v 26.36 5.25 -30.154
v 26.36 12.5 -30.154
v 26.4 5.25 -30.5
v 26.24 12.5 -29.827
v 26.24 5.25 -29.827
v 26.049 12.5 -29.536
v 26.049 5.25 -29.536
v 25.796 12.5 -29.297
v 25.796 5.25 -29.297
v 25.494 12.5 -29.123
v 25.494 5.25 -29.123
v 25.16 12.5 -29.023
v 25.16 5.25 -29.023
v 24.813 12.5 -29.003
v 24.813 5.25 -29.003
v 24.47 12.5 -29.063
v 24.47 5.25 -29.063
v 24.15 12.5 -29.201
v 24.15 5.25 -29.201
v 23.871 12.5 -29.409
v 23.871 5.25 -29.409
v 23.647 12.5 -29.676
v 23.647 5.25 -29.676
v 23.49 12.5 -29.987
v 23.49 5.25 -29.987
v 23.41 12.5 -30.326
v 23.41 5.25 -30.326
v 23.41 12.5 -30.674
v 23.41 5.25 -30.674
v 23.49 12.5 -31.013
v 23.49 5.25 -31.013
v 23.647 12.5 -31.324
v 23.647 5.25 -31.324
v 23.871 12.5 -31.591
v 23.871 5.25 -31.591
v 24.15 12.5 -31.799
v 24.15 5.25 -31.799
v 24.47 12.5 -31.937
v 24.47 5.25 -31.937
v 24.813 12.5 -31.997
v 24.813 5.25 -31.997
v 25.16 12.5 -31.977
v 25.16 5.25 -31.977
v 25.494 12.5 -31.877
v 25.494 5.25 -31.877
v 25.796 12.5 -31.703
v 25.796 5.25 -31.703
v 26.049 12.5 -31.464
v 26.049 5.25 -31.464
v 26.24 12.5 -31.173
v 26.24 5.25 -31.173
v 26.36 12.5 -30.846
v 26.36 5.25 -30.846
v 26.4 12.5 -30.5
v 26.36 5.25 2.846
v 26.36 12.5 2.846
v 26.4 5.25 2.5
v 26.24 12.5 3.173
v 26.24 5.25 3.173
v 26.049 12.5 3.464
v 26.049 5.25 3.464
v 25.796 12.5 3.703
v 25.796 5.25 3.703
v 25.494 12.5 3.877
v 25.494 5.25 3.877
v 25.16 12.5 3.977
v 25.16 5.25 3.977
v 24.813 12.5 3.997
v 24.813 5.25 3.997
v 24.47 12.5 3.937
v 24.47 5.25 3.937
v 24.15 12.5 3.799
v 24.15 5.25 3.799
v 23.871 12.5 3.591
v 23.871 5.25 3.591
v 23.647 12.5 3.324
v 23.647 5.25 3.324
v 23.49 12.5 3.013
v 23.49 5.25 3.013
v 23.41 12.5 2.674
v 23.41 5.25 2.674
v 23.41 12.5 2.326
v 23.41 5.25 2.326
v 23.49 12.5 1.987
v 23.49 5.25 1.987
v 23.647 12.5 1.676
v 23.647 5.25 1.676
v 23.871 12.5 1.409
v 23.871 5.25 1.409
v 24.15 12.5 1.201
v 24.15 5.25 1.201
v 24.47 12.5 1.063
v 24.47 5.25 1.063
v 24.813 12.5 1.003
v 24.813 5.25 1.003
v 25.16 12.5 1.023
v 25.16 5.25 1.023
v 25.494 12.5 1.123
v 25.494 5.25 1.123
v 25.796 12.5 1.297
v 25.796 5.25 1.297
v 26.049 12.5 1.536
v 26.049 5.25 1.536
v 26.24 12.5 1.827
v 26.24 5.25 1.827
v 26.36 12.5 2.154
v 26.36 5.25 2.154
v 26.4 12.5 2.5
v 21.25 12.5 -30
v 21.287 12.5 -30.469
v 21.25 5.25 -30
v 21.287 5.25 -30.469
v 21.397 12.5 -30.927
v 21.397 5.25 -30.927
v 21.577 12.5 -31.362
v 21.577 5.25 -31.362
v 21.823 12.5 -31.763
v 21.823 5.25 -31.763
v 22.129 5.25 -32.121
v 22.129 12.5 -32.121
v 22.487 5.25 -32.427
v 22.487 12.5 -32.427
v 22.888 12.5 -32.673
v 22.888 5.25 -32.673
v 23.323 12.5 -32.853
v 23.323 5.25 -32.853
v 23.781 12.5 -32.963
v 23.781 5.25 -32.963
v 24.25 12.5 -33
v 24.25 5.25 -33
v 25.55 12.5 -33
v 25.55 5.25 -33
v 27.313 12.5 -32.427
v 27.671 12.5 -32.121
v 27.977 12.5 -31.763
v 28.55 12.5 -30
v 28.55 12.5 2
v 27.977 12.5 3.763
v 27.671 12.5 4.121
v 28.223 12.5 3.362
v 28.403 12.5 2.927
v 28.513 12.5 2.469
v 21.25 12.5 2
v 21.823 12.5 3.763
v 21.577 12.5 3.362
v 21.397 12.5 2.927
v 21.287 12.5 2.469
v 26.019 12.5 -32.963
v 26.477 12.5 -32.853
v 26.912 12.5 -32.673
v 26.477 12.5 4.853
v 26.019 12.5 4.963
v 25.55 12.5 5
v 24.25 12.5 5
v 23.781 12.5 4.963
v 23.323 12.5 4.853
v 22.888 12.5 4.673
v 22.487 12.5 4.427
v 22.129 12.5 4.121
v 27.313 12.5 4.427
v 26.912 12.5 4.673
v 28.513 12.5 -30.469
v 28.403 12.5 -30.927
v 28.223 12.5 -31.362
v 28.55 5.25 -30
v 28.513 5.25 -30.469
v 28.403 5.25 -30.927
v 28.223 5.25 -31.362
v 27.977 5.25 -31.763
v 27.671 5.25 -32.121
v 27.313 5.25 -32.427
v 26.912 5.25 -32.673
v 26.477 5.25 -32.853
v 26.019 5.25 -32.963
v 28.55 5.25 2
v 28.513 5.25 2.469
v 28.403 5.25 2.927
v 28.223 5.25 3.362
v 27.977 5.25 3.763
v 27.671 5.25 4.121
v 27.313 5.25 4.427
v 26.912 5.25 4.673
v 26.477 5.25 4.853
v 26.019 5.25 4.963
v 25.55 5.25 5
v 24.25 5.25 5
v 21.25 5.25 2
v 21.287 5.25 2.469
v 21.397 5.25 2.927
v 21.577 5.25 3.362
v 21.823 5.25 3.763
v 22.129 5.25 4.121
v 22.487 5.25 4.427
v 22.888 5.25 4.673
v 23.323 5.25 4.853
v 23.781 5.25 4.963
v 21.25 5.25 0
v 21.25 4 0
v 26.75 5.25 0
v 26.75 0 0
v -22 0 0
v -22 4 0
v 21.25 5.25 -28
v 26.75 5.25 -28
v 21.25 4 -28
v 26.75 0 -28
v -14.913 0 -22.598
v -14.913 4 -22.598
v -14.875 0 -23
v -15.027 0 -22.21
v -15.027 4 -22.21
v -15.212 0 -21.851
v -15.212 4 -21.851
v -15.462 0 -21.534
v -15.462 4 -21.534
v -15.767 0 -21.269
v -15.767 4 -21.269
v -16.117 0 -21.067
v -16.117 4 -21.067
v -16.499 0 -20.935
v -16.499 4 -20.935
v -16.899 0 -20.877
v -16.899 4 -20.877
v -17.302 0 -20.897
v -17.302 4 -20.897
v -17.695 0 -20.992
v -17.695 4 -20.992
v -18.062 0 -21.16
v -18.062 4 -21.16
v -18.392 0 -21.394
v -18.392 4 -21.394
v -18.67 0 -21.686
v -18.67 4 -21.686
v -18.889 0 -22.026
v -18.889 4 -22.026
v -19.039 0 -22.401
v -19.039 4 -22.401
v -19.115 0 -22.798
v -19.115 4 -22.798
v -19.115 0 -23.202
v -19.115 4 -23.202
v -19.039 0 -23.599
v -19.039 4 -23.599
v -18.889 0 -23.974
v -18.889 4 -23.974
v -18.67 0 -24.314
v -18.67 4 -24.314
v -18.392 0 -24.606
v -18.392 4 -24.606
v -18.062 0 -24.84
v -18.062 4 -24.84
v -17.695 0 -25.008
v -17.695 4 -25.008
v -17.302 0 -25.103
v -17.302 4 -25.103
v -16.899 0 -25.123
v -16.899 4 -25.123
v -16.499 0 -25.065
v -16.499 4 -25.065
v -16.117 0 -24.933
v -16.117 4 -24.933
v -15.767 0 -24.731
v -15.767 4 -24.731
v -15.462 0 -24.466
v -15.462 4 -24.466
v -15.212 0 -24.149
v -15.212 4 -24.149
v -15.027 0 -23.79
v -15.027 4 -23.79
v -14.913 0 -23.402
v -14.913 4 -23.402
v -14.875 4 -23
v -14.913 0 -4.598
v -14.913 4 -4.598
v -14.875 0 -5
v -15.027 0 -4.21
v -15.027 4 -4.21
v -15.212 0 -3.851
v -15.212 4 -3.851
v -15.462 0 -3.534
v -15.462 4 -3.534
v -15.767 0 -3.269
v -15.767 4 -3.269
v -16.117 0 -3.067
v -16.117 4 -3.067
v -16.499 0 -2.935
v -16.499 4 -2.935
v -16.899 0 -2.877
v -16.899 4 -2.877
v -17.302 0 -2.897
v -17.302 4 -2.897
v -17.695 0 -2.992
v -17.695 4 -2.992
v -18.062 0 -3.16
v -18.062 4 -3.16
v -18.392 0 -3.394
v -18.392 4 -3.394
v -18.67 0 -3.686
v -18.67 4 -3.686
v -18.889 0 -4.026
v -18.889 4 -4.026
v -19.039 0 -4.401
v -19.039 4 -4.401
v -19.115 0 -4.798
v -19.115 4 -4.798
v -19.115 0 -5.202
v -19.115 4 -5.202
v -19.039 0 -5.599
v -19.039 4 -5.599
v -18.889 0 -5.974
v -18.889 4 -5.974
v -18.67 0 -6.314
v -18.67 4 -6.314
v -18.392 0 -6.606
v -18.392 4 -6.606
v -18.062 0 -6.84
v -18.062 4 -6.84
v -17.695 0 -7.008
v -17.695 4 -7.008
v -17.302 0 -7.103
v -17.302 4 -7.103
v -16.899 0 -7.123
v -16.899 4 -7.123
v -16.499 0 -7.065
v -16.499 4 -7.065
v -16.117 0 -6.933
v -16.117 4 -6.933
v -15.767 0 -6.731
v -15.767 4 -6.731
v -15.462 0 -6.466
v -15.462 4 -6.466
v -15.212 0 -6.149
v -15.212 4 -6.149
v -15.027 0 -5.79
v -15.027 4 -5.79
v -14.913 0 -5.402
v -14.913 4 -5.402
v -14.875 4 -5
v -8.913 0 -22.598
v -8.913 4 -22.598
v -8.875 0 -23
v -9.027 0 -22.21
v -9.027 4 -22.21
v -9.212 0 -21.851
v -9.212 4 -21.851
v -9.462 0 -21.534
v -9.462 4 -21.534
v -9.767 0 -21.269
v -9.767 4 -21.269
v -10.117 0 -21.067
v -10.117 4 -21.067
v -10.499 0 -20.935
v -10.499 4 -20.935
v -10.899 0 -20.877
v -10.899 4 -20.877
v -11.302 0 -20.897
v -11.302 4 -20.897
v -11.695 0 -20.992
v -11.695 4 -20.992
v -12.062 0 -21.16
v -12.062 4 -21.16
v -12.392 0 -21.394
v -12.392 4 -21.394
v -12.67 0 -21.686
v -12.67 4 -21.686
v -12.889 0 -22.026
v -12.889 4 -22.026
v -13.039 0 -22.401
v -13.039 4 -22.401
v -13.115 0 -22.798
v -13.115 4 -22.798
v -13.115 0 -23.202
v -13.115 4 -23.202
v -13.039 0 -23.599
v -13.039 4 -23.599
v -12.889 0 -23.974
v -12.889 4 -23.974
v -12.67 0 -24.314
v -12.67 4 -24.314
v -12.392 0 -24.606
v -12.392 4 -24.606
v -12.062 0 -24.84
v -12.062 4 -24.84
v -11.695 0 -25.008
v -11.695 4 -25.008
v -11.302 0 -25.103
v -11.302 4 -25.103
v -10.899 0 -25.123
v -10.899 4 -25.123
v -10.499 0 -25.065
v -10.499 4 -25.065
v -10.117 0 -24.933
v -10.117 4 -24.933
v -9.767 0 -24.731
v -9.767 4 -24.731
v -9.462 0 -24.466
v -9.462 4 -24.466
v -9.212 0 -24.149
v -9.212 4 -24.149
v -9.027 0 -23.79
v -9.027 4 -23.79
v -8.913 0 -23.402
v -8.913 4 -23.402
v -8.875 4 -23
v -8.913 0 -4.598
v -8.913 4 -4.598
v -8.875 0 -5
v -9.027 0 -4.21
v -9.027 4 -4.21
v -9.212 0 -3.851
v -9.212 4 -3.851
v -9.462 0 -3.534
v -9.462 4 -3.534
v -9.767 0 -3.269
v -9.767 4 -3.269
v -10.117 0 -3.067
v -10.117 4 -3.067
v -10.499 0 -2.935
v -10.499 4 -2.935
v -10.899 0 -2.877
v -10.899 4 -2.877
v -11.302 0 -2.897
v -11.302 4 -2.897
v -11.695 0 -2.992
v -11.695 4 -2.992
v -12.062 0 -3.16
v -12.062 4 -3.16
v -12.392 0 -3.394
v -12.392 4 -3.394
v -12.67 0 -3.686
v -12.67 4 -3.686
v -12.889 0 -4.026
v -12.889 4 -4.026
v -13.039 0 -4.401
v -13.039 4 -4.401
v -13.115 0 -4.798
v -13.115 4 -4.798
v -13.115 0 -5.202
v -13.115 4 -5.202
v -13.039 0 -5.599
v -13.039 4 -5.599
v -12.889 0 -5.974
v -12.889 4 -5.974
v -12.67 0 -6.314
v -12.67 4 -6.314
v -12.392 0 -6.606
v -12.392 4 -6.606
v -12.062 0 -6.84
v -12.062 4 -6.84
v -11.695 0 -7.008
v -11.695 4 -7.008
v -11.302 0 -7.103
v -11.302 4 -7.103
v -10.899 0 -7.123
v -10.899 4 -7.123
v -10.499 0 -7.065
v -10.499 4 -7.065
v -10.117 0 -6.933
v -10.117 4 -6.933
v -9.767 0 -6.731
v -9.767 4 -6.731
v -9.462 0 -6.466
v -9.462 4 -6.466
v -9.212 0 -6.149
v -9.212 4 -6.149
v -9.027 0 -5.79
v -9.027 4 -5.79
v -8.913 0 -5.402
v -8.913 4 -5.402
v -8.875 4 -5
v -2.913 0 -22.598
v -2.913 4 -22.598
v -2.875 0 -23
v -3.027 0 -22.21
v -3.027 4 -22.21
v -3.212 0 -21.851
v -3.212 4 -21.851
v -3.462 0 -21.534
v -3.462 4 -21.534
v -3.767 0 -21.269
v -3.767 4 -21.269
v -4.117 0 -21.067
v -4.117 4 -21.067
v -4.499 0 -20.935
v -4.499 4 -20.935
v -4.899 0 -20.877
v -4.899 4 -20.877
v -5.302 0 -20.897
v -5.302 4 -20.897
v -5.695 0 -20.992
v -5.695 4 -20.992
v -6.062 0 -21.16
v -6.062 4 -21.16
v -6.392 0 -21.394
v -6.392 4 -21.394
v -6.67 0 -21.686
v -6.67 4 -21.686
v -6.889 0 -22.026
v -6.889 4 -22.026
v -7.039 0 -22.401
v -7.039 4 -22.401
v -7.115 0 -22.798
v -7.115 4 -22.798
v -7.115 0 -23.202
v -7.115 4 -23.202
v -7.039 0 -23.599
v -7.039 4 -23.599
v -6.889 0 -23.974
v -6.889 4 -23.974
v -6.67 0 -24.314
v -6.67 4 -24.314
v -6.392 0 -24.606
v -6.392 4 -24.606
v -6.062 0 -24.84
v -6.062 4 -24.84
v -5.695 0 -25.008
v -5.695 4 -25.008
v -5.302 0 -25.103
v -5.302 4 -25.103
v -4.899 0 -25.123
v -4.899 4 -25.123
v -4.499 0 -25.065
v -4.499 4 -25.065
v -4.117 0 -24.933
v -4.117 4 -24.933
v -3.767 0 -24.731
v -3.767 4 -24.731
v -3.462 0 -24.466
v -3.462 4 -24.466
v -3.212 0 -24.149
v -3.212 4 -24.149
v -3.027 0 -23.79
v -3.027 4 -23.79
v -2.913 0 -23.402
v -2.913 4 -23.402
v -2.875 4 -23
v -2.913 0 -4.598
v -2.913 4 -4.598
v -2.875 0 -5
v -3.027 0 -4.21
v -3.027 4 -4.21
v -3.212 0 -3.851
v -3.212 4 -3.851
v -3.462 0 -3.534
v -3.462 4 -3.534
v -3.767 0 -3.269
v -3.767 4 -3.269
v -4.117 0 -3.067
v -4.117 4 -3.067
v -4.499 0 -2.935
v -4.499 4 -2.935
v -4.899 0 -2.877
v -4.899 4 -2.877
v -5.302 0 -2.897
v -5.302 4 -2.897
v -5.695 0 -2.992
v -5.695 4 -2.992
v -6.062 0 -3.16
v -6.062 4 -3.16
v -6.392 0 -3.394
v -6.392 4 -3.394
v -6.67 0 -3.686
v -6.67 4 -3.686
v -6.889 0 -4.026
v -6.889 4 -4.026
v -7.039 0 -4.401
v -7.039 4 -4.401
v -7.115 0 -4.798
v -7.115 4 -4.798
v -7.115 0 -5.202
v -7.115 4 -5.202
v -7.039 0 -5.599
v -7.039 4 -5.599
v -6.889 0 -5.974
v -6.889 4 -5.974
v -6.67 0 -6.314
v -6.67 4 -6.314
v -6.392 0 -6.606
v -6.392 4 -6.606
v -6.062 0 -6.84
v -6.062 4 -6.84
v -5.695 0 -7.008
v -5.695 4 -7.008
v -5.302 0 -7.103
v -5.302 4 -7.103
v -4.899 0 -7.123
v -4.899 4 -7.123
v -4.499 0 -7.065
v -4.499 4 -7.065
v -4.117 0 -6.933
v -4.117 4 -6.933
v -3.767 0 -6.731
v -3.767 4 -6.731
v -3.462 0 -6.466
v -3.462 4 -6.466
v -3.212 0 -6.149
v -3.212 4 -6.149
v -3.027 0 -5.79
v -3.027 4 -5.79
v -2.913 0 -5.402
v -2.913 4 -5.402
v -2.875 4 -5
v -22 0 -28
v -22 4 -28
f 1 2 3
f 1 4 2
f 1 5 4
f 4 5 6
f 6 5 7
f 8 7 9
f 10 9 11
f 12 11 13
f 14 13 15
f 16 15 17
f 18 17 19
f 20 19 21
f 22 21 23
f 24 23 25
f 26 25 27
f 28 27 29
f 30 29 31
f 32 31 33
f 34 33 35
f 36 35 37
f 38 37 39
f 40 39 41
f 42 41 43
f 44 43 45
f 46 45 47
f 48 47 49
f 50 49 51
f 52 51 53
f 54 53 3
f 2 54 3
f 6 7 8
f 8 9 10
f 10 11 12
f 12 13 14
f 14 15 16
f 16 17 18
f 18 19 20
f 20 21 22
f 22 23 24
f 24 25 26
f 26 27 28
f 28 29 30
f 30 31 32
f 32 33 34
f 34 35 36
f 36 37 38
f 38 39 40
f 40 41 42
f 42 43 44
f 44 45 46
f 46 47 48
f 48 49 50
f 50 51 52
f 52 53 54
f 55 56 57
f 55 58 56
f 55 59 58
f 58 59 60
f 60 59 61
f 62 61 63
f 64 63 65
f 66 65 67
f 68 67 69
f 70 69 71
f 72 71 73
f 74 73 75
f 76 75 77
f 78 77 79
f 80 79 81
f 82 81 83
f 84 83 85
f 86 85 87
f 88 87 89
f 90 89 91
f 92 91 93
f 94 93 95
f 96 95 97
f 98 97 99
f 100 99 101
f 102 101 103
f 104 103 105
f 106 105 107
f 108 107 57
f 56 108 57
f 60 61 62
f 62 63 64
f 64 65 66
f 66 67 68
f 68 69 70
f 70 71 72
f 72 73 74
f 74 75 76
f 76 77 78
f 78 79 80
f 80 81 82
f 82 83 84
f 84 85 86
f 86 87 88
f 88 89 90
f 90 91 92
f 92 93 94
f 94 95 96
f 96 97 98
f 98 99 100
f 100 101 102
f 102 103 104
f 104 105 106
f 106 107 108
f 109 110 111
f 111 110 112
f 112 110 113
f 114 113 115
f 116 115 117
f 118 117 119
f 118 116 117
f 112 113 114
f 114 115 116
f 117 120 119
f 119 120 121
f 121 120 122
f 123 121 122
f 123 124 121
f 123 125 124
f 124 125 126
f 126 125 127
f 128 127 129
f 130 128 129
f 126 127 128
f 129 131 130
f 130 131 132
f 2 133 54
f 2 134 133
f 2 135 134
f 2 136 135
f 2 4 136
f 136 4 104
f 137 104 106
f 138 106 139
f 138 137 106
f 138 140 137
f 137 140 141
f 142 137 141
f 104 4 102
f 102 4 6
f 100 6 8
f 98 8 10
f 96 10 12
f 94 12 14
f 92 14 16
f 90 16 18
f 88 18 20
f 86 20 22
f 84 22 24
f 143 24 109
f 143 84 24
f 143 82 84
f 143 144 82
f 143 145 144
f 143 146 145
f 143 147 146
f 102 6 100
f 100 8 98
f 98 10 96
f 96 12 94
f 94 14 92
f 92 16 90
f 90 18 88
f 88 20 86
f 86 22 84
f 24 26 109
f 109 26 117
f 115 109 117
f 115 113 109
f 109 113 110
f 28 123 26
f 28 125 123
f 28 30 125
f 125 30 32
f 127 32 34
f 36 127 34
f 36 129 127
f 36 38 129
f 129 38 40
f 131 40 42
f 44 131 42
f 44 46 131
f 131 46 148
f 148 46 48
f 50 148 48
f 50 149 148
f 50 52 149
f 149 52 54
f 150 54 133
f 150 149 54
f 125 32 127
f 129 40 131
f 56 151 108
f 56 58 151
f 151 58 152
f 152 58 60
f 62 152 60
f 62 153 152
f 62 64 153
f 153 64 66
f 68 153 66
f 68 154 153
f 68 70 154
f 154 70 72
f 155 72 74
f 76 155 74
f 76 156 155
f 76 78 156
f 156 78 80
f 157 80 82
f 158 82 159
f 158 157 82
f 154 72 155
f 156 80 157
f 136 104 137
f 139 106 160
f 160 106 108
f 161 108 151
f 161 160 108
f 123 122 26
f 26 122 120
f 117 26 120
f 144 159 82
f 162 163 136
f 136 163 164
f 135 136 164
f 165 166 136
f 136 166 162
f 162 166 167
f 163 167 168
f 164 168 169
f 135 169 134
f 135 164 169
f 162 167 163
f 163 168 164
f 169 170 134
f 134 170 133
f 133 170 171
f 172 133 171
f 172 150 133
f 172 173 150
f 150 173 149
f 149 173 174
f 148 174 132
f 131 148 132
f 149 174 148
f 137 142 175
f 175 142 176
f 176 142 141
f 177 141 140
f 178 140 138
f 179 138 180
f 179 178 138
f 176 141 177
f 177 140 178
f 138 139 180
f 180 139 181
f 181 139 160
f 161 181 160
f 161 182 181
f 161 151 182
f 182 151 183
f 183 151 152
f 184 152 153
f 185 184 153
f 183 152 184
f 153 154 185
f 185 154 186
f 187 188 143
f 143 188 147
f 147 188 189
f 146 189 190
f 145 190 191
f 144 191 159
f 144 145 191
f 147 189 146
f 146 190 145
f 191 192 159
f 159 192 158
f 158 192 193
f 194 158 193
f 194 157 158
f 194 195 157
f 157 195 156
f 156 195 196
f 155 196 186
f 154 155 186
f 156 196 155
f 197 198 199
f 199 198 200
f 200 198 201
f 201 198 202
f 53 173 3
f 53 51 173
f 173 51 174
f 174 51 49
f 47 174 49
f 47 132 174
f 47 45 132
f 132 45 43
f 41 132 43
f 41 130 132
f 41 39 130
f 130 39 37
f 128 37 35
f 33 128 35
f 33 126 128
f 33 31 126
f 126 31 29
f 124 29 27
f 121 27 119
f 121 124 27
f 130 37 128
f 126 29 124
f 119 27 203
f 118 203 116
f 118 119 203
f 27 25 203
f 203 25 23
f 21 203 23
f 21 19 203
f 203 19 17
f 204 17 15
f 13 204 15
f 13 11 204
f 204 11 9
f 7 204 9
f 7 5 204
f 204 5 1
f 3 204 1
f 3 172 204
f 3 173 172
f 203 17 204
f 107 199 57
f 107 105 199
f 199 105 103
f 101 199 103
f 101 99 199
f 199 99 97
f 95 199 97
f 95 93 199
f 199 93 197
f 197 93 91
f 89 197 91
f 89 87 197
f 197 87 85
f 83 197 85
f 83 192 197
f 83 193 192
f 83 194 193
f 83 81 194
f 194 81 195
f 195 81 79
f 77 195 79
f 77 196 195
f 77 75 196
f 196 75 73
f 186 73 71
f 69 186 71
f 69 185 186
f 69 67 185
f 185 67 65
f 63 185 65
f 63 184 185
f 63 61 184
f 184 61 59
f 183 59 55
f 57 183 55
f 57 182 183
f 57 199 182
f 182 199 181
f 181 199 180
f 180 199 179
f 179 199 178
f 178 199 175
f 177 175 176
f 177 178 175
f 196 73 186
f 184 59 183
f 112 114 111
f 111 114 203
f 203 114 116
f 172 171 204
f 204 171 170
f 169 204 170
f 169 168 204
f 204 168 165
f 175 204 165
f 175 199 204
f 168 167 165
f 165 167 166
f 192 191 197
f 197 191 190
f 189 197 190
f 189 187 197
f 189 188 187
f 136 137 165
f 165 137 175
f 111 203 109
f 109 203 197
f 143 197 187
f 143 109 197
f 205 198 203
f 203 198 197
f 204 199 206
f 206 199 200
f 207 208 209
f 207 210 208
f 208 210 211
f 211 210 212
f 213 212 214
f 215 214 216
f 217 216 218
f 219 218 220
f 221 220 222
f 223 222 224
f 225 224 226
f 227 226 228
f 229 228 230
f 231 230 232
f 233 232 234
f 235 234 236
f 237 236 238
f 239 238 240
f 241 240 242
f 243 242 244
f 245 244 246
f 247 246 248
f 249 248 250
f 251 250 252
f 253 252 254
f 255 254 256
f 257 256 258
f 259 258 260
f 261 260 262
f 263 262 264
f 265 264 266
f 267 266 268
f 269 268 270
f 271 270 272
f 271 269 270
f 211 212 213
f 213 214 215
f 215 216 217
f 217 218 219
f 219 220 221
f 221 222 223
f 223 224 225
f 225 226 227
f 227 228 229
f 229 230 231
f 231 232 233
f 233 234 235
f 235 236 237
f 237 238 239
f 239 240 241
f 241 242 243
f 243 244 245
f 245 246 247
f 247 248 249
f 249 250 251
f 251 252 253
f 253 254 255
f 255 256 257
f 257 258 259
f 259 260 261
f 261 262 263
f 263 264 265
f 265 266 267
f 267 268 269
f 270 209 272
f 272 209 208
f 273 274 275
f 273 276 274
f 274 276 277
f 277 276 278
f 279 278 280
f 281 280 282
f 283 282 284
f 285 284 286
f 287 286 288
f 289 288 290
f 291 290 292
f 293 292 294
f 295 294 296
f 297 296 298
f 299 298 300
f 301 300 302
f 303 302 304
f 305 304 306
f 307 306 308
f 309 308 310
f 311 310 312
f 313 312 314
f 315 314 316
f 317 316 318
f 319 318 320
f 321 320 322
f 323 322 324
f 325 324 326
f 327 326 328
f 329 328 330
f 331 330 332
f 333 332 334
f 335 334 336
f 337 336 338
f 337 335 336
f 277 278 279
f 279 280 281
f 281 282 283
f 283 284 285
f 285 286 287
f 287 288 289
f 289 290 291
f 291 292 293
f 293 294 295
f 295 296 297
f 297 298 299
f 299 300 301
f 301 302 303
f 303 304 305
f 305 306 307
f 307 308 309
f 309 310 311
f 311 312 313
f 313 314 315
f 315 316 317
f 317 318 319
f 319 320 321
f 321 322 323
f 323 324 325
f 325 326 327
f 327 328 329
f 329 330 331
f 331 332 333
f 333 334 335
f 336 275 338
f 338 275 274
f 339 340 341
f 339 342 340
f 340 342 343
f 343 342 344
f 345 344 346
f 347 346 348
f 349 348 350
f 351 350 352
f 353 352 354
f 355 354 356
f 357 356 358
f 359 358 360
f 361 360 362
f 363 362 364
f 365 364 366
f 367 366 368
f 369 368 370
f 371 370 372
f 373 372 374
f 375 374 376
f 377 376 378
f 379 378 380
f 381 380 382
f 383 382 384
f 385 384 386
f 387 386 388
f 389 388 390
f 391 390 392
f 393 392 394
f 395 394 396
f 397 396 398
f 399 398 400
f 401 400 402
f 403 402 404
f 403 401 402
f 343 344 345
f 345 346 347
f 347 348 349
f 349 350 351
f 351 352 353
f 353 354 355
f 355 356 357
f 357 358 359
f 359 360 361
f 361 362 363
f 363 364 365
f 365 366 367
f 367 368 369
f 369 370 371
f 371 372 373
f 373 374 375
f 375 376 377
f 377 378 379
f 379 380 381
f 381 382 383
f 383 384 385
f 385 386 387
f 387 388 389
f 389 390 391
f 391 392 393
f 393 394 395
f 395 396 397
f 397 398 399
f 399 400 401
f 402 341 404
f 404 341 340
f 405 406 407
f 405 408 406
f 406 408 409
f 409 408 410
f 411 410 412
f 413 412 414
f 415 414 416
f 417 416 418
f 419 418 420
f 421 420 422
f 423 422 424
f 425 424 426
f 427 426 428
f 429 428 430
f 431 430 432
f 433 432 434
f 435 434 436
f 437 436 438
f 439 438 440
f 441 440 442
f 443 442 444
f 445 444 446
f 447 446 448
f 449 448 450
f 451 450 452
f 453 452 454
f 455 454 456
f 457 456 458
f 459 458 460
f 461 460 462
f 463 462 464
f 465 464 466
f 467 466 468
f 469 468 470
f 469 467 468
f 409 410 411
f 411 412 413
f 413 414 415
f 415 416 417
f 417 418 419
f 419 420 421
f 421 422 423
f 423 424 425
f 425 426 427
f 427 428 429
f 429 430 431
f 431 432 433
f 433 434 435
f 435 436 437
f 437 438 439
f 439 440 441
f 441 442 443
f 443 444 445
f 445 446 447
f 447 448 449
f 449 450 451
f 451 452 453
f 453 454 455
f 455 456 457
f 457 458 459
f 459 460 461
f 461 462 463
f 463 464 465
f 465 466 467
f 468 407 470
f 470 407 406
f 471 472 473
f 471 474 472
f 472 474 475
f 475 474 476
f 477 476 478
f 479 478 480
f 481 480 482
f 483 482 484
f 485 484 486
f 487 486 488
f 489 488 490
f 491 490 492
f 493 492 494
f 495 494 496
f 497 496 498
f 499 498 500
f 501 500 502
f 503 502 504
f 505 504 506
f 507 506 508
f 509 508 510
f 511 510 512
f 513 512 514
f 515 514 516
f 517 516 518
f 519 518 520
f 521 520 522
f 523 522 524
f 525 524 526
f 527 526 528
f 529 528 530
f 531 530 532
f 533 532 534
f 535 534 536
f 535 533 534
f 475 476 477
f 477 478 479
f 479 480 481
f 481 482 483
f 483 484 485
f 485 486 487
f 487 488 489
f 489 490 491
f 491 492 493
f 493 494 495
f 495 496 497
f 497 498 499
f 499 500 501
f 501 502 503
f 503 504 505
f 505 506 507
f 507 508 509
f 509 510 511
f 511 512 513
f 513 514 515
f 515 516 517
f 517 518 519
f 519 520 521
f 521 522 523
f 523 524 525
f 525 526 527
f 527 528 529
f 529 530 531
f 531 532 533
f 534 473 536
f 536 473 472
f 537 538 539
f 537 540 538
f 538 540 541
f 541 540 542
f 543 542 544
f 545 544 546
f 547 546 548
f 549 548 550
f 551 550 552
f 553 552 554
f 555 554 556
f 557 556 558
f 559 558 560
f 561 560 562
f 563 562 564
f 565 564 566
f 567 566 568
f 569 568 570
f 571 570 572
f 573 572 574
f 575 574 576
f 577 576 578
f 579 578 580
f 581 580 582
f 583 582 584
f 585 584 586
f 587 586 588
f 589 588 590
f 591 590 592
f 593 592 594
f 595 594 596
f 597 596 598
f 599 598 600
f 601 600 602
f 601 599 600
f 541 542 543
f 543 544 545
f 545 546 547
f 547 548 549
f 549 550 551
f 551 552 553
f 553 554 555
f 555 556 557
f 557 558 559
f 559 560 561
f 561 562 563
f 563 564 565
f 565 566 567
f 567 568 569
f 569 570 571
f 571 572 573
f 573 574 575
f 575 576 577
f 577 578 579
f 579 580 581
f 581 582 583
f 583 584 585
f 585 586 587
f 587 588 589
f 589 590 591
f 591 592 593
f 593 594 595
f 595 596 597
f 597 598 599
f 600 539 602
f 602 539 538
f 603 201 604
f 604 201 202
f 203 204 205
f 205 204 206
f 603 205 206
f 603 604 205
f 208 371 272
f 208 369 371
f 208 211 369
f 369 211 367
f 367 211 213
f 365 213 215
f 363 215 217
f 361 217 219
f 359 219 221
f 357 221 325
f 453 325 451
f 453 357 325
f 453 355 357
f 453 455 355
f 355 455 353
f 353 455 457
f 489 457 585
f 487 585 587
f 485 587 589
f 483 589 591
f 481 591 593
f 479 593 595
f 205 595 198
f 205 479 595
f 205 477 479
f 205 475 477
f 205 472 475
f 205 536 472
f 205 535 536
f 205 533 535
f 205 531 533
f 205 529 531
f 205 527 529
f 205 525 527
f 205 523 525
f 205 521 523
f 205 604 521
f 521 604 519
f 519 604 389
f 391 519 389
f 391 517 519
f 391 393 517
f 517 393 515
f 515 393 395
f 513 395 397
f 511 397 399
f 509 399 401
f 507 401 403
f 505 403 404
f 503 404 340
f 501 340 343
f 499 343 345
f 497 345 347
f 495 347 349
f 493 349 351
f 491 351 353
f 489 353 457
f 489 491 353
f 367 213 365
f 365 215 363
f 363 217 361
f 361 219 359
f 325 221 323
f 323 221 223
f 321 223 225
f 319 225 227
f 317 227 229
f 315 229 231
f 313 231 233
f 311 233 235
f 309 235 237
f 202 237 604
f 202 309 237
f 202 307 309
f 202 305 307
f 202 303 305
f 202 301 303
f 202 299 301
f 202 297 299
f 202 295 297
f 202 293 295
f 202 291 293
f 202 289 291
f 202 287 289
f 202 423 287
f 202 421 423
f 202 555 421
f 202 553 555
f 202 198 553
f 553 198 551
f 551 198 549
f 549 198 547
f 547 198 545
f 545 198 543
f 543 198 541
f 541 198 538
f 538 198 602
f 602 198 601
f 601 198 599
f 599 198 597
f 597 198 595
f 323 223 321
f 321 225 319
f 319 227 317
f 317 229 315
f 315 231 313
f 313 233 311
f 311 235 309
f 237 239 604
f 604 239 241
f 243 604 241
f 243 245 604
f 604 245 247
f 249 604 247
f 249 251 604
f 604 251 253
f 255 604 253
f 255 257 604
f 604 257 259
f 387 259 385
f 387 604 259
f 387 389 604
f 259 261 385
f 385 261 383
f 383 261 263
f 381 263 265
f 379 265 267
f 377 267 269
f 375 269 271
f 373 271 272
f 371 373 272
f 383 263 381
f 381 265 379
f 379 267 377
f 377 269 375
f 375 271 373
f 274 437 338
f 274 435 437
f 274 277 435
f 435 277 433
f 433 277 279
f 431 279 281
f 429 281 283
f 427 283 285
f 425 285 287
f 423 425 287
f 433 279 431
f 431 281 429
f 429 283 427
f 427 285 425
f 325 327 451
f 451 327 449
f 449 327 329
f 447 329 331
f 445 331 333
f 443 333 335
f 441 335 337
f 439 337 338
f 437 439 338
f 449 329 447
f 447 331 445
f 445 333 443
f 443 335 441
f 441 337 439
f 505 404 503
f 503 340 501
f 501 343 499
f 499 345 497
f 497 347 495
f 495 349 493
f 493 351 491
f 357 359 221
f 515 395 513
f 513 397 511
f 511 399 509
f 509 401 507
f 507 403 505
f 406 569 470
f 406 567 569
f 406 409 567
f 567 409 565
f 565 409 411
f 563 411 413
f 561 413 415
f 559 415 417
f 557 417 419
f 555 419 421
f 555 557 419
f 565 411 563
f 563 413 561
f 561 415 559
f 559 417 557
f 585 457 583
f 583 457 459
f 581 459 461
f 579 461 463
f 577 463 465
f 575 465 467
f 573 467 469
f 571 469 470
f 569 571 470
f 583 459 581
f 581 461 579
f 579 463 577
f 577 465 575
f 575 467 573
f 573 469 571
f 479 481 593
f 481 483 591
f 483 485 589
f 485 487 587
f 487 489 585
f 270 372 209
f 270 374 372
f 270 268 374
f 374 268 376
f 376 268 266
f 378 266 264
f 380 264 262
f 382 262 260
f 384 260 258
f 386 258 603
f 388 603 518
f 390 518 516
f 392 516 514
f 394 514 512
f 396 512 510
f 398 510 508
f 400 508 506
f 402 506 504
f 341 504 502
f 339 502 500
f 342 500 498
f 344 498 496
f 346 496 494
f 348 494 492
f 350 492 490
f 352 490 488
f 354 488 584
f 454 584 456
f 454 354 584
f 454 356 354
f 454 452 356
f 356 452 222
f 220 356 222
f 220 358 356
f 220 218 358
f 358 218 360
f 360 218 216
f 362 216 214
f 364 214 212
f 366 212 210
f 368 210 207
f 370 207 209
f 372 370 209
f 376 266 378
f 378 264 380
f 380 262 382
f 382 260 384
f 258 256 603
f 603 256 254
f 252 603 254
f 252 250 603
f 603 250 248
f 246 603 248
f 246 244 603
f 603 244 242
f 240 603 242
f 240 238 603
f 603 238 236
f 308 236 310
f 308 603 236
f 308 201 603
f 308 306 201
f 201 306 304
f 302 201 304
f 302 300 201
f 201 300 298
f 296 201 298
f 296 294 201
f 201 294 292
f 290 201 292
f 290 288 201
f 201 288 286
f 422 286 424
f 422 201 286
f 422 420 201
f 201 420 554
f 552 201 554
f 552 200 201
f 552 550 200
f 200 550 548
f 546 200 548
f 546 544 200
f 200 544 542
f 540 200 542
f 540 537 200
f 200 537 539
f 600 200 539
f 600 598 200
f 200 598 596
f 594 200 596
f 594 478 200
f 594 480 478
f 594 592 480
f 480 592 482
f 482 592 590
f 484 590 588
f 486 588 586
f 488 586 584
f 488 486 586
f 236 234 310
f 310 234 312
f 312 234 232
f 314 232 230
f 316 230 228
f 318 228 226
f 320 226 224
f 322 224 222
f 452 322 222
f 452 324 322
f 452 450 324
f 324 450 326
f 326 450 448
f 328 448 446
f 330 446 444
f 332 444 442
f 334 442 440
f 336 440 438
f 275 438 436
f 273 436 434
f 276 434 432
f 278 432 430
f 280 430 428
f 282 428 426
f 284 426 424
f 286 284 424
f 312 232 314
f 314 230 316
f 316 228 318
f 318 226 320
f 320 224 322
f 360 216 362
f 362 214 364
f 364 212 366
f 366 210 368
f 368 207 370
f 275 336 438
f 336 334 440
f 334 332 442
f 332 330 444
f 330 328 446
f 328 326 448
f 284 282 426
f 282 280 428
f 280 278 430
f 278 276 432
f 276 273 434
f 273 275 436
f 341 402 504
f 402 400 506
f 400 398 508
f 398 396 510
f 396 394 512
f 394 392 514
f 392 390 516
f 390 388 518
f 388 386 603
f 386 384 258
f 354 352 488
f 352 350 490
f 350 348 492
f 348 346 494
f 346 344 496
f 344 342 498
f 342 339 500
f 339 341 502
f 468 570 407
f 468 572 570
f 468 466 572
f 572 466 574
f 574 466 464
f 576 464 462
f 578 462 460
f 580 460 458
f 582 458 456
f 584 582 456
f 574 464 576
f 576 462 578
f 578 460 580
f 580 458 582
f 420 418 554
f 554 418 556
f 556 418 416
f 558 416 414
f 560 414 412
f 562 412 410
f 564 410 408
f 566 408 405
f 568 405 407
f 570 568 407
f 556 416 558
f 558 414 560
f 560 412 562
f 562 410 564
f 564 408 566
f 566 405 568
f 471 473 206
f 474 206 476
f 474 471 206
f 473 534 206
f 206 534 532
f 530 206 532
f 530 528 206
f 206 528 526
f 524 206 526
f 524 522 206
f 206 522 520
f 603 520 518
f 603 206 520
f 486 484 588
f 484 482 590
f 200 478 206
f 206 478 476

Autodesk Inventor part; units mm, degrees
ref_plane "YZ Plane" through (0, 0, 0) normal (1, 0, 0) x (0, 1, 0)
ref_plane "XZ Plane" through (0, 0, 0) normal (0, 1, 0) x (-1, 0, 0)
ref_plane "XY Plane" through (0, 0, 0) normal (0, 0, 1) x (1, 0, 0)
sketch "Sketch2" plane through (0, 0, 0) normal (0, 1, 0) x (-1, 0, 0)
  line L0 (0, 0) -> (0, -28)
  line L1 (0, -28) -> (22, -28)
  line L2 (22, -28) -> (22, 0)
  line L3 (22, 0) -> (0, 0)
  dimension "d0" = 28
  dimension "d1" = 22
extrude "Extrusion1" add sketch "Sketch2" along normal blind 4
sketch "Sketch3" plane through (0, 4, 0) normal (0, 1, 0) x (1, 0, 0)
  line L0 (0, 0) -> (0, 5)
  line L1 (0, 0) -> (0, 28) projected
  line L2 (0, 5) -> (-5, 5)
  circle A0 centre (-5, 5) radius 2.125
  dimension "d4" = 5
  dimension "d5" = 5
  dimension "d6" = 4.25
extrude "Extrusion2" cut sketch "Sketch3" against normal through all
pattern_linear "Rectangular Pattern1" count 2 spacing 18 along (0, 0, -1) count 3 spacing 6 along (-1, 0, 0) of "Extrusion2"
sketch "Sketch4" plane through (0, 4, 0) normal (0, 1, 0) x (1, 0, 0)
  point P0 (0, 0)
sketch "Sketch5" plane through (0, 0, 0) normal (1, 0, 0) x (0, 0, -1)
  line L0 (0, 4) -> (28, 4)
  line L1 (28, 4) -> (28, 0)
  line L2 (28, 0) -> (0, 0)
  line L3 (0, 0) -> (0, 4)
  line L4 (0, 4) -> (28, 4) projected
extrude "Extrusion3" add sketch "Sketch5" along normal blind 21.25
sketch "Sketch6" plane through (0, 0, 0) normal (0, -1, 0) x (1, 0, 0)
  line L0 (21.25, 0) -> (26.75, 0)
  line L1 (26.75, 0) -> (26.75, -28)
  line L2 (26.75, -28) -> (21.25, -28)
  line L3 (21.25, -28) -> (21.25, 0)
  point P0 (0, 0)
  dimension "d17" = 5.5
extrude "Extrusion4" add sketch "Sketch6" against normal blind 12.5
sketch "Sketch7" plane through (26.75, 0, 0) normal (1, 0, 0) x (0, 0, -1)
  line L0 (0, 4) -> (0, 12.5) projected
  line L1 (28, 12.5) -> (0, 12.5)
  line L2 (0, 12.5) -> (0, 5.25)
  line L3 (0, 5.25) -> (28, 5.25)
  line L4 (28, 5.25) -> (28, 12.5)
  point P0 (0, 0)
  dimension "d20" = 7.25
extrude "Extrusion5" add sketch "Sketch7" along normal blind 1.8
sketch "Sketch8" plane through (-22, 0, 0) normal (0, 0, 1) x (1, 0, 0)
  line L0 (50.55, 5.25) -> (43.25, 5.25)
  line L1 (43.25, 5.25) -> (43.25, 12.5)
  line L2 (43.25, 12.5) -> (50.55, 12.5)
  line L3 (50.55, 12.5) -> (50.55, 5.25)
  point P0 (22, 0)
extrude "Extrusion6" add sketch "Sketch8" along normal blind 5
fillet "Fillet1" radius 3 1 edges at (21.25, 8.875, 5)
fillet "Fillet2" radius 3 1 edges at (28.55, 8.875, 5)
sketch "Sketch9" plane through (-22, 0, -28) normal (0, 0, -1) x (-1, 0, 0)
  line L0 (-43.25, 12.5) -> (-50.55, 12.5)
  line L1 (-50.55, 12.5) -> (-50.55, 5.25)
  line L2 (-50.55, 5.25) -> (-43.25, 5.25)
  line L3 (-43.25, 5.25) -> (-43.25, 12.5)
  point P0 (-22, 0)
extrude "Extrusion7" add sketch "Sketch9" along normal blind 5
fillet "Fillet3" radius 3 1 edges at (28.55, 8.875, -33)
fillet "Fillet4" radius 3 1 edges at (21.25, 8.875, -33)
sketch "Sketch10" plane through (0, 12.5, 0) normal (0, 1, 0) x (1, 0, 0)
  line L0 (21.25, 28) -> (28.55, 28)
  line L1 (28.55, 30) -> (28.55, -2) projected
  line L2 (21.25, 28) -> (26.75, 28) projected
  line L3 (21.25, 0) -> (28.55, 0)
  line L4 (26.75, 0) -> (21.25, 0) projected
  line L5 (25.55, 33) -> (24.25, 33) projected
  line L6 (24.9, 33) -> (24.9, 28)
  line L7 (24.25, -5) -> (25.55, -5) projected
  line L8 (24.9, -5) -> (24.9, 0)
  circle A0 centre (24.9, 30.5) radius 1.5
  circle A1 centre (24.9, -2.5) radius 1.5
  point P0 (0, 0)
  dimension "d31" = 3
  dimension "d32" = 3
extrude "Extrusion8" cut sketch "Sketch10" against normal through all
properties part number "CartServoMount"
